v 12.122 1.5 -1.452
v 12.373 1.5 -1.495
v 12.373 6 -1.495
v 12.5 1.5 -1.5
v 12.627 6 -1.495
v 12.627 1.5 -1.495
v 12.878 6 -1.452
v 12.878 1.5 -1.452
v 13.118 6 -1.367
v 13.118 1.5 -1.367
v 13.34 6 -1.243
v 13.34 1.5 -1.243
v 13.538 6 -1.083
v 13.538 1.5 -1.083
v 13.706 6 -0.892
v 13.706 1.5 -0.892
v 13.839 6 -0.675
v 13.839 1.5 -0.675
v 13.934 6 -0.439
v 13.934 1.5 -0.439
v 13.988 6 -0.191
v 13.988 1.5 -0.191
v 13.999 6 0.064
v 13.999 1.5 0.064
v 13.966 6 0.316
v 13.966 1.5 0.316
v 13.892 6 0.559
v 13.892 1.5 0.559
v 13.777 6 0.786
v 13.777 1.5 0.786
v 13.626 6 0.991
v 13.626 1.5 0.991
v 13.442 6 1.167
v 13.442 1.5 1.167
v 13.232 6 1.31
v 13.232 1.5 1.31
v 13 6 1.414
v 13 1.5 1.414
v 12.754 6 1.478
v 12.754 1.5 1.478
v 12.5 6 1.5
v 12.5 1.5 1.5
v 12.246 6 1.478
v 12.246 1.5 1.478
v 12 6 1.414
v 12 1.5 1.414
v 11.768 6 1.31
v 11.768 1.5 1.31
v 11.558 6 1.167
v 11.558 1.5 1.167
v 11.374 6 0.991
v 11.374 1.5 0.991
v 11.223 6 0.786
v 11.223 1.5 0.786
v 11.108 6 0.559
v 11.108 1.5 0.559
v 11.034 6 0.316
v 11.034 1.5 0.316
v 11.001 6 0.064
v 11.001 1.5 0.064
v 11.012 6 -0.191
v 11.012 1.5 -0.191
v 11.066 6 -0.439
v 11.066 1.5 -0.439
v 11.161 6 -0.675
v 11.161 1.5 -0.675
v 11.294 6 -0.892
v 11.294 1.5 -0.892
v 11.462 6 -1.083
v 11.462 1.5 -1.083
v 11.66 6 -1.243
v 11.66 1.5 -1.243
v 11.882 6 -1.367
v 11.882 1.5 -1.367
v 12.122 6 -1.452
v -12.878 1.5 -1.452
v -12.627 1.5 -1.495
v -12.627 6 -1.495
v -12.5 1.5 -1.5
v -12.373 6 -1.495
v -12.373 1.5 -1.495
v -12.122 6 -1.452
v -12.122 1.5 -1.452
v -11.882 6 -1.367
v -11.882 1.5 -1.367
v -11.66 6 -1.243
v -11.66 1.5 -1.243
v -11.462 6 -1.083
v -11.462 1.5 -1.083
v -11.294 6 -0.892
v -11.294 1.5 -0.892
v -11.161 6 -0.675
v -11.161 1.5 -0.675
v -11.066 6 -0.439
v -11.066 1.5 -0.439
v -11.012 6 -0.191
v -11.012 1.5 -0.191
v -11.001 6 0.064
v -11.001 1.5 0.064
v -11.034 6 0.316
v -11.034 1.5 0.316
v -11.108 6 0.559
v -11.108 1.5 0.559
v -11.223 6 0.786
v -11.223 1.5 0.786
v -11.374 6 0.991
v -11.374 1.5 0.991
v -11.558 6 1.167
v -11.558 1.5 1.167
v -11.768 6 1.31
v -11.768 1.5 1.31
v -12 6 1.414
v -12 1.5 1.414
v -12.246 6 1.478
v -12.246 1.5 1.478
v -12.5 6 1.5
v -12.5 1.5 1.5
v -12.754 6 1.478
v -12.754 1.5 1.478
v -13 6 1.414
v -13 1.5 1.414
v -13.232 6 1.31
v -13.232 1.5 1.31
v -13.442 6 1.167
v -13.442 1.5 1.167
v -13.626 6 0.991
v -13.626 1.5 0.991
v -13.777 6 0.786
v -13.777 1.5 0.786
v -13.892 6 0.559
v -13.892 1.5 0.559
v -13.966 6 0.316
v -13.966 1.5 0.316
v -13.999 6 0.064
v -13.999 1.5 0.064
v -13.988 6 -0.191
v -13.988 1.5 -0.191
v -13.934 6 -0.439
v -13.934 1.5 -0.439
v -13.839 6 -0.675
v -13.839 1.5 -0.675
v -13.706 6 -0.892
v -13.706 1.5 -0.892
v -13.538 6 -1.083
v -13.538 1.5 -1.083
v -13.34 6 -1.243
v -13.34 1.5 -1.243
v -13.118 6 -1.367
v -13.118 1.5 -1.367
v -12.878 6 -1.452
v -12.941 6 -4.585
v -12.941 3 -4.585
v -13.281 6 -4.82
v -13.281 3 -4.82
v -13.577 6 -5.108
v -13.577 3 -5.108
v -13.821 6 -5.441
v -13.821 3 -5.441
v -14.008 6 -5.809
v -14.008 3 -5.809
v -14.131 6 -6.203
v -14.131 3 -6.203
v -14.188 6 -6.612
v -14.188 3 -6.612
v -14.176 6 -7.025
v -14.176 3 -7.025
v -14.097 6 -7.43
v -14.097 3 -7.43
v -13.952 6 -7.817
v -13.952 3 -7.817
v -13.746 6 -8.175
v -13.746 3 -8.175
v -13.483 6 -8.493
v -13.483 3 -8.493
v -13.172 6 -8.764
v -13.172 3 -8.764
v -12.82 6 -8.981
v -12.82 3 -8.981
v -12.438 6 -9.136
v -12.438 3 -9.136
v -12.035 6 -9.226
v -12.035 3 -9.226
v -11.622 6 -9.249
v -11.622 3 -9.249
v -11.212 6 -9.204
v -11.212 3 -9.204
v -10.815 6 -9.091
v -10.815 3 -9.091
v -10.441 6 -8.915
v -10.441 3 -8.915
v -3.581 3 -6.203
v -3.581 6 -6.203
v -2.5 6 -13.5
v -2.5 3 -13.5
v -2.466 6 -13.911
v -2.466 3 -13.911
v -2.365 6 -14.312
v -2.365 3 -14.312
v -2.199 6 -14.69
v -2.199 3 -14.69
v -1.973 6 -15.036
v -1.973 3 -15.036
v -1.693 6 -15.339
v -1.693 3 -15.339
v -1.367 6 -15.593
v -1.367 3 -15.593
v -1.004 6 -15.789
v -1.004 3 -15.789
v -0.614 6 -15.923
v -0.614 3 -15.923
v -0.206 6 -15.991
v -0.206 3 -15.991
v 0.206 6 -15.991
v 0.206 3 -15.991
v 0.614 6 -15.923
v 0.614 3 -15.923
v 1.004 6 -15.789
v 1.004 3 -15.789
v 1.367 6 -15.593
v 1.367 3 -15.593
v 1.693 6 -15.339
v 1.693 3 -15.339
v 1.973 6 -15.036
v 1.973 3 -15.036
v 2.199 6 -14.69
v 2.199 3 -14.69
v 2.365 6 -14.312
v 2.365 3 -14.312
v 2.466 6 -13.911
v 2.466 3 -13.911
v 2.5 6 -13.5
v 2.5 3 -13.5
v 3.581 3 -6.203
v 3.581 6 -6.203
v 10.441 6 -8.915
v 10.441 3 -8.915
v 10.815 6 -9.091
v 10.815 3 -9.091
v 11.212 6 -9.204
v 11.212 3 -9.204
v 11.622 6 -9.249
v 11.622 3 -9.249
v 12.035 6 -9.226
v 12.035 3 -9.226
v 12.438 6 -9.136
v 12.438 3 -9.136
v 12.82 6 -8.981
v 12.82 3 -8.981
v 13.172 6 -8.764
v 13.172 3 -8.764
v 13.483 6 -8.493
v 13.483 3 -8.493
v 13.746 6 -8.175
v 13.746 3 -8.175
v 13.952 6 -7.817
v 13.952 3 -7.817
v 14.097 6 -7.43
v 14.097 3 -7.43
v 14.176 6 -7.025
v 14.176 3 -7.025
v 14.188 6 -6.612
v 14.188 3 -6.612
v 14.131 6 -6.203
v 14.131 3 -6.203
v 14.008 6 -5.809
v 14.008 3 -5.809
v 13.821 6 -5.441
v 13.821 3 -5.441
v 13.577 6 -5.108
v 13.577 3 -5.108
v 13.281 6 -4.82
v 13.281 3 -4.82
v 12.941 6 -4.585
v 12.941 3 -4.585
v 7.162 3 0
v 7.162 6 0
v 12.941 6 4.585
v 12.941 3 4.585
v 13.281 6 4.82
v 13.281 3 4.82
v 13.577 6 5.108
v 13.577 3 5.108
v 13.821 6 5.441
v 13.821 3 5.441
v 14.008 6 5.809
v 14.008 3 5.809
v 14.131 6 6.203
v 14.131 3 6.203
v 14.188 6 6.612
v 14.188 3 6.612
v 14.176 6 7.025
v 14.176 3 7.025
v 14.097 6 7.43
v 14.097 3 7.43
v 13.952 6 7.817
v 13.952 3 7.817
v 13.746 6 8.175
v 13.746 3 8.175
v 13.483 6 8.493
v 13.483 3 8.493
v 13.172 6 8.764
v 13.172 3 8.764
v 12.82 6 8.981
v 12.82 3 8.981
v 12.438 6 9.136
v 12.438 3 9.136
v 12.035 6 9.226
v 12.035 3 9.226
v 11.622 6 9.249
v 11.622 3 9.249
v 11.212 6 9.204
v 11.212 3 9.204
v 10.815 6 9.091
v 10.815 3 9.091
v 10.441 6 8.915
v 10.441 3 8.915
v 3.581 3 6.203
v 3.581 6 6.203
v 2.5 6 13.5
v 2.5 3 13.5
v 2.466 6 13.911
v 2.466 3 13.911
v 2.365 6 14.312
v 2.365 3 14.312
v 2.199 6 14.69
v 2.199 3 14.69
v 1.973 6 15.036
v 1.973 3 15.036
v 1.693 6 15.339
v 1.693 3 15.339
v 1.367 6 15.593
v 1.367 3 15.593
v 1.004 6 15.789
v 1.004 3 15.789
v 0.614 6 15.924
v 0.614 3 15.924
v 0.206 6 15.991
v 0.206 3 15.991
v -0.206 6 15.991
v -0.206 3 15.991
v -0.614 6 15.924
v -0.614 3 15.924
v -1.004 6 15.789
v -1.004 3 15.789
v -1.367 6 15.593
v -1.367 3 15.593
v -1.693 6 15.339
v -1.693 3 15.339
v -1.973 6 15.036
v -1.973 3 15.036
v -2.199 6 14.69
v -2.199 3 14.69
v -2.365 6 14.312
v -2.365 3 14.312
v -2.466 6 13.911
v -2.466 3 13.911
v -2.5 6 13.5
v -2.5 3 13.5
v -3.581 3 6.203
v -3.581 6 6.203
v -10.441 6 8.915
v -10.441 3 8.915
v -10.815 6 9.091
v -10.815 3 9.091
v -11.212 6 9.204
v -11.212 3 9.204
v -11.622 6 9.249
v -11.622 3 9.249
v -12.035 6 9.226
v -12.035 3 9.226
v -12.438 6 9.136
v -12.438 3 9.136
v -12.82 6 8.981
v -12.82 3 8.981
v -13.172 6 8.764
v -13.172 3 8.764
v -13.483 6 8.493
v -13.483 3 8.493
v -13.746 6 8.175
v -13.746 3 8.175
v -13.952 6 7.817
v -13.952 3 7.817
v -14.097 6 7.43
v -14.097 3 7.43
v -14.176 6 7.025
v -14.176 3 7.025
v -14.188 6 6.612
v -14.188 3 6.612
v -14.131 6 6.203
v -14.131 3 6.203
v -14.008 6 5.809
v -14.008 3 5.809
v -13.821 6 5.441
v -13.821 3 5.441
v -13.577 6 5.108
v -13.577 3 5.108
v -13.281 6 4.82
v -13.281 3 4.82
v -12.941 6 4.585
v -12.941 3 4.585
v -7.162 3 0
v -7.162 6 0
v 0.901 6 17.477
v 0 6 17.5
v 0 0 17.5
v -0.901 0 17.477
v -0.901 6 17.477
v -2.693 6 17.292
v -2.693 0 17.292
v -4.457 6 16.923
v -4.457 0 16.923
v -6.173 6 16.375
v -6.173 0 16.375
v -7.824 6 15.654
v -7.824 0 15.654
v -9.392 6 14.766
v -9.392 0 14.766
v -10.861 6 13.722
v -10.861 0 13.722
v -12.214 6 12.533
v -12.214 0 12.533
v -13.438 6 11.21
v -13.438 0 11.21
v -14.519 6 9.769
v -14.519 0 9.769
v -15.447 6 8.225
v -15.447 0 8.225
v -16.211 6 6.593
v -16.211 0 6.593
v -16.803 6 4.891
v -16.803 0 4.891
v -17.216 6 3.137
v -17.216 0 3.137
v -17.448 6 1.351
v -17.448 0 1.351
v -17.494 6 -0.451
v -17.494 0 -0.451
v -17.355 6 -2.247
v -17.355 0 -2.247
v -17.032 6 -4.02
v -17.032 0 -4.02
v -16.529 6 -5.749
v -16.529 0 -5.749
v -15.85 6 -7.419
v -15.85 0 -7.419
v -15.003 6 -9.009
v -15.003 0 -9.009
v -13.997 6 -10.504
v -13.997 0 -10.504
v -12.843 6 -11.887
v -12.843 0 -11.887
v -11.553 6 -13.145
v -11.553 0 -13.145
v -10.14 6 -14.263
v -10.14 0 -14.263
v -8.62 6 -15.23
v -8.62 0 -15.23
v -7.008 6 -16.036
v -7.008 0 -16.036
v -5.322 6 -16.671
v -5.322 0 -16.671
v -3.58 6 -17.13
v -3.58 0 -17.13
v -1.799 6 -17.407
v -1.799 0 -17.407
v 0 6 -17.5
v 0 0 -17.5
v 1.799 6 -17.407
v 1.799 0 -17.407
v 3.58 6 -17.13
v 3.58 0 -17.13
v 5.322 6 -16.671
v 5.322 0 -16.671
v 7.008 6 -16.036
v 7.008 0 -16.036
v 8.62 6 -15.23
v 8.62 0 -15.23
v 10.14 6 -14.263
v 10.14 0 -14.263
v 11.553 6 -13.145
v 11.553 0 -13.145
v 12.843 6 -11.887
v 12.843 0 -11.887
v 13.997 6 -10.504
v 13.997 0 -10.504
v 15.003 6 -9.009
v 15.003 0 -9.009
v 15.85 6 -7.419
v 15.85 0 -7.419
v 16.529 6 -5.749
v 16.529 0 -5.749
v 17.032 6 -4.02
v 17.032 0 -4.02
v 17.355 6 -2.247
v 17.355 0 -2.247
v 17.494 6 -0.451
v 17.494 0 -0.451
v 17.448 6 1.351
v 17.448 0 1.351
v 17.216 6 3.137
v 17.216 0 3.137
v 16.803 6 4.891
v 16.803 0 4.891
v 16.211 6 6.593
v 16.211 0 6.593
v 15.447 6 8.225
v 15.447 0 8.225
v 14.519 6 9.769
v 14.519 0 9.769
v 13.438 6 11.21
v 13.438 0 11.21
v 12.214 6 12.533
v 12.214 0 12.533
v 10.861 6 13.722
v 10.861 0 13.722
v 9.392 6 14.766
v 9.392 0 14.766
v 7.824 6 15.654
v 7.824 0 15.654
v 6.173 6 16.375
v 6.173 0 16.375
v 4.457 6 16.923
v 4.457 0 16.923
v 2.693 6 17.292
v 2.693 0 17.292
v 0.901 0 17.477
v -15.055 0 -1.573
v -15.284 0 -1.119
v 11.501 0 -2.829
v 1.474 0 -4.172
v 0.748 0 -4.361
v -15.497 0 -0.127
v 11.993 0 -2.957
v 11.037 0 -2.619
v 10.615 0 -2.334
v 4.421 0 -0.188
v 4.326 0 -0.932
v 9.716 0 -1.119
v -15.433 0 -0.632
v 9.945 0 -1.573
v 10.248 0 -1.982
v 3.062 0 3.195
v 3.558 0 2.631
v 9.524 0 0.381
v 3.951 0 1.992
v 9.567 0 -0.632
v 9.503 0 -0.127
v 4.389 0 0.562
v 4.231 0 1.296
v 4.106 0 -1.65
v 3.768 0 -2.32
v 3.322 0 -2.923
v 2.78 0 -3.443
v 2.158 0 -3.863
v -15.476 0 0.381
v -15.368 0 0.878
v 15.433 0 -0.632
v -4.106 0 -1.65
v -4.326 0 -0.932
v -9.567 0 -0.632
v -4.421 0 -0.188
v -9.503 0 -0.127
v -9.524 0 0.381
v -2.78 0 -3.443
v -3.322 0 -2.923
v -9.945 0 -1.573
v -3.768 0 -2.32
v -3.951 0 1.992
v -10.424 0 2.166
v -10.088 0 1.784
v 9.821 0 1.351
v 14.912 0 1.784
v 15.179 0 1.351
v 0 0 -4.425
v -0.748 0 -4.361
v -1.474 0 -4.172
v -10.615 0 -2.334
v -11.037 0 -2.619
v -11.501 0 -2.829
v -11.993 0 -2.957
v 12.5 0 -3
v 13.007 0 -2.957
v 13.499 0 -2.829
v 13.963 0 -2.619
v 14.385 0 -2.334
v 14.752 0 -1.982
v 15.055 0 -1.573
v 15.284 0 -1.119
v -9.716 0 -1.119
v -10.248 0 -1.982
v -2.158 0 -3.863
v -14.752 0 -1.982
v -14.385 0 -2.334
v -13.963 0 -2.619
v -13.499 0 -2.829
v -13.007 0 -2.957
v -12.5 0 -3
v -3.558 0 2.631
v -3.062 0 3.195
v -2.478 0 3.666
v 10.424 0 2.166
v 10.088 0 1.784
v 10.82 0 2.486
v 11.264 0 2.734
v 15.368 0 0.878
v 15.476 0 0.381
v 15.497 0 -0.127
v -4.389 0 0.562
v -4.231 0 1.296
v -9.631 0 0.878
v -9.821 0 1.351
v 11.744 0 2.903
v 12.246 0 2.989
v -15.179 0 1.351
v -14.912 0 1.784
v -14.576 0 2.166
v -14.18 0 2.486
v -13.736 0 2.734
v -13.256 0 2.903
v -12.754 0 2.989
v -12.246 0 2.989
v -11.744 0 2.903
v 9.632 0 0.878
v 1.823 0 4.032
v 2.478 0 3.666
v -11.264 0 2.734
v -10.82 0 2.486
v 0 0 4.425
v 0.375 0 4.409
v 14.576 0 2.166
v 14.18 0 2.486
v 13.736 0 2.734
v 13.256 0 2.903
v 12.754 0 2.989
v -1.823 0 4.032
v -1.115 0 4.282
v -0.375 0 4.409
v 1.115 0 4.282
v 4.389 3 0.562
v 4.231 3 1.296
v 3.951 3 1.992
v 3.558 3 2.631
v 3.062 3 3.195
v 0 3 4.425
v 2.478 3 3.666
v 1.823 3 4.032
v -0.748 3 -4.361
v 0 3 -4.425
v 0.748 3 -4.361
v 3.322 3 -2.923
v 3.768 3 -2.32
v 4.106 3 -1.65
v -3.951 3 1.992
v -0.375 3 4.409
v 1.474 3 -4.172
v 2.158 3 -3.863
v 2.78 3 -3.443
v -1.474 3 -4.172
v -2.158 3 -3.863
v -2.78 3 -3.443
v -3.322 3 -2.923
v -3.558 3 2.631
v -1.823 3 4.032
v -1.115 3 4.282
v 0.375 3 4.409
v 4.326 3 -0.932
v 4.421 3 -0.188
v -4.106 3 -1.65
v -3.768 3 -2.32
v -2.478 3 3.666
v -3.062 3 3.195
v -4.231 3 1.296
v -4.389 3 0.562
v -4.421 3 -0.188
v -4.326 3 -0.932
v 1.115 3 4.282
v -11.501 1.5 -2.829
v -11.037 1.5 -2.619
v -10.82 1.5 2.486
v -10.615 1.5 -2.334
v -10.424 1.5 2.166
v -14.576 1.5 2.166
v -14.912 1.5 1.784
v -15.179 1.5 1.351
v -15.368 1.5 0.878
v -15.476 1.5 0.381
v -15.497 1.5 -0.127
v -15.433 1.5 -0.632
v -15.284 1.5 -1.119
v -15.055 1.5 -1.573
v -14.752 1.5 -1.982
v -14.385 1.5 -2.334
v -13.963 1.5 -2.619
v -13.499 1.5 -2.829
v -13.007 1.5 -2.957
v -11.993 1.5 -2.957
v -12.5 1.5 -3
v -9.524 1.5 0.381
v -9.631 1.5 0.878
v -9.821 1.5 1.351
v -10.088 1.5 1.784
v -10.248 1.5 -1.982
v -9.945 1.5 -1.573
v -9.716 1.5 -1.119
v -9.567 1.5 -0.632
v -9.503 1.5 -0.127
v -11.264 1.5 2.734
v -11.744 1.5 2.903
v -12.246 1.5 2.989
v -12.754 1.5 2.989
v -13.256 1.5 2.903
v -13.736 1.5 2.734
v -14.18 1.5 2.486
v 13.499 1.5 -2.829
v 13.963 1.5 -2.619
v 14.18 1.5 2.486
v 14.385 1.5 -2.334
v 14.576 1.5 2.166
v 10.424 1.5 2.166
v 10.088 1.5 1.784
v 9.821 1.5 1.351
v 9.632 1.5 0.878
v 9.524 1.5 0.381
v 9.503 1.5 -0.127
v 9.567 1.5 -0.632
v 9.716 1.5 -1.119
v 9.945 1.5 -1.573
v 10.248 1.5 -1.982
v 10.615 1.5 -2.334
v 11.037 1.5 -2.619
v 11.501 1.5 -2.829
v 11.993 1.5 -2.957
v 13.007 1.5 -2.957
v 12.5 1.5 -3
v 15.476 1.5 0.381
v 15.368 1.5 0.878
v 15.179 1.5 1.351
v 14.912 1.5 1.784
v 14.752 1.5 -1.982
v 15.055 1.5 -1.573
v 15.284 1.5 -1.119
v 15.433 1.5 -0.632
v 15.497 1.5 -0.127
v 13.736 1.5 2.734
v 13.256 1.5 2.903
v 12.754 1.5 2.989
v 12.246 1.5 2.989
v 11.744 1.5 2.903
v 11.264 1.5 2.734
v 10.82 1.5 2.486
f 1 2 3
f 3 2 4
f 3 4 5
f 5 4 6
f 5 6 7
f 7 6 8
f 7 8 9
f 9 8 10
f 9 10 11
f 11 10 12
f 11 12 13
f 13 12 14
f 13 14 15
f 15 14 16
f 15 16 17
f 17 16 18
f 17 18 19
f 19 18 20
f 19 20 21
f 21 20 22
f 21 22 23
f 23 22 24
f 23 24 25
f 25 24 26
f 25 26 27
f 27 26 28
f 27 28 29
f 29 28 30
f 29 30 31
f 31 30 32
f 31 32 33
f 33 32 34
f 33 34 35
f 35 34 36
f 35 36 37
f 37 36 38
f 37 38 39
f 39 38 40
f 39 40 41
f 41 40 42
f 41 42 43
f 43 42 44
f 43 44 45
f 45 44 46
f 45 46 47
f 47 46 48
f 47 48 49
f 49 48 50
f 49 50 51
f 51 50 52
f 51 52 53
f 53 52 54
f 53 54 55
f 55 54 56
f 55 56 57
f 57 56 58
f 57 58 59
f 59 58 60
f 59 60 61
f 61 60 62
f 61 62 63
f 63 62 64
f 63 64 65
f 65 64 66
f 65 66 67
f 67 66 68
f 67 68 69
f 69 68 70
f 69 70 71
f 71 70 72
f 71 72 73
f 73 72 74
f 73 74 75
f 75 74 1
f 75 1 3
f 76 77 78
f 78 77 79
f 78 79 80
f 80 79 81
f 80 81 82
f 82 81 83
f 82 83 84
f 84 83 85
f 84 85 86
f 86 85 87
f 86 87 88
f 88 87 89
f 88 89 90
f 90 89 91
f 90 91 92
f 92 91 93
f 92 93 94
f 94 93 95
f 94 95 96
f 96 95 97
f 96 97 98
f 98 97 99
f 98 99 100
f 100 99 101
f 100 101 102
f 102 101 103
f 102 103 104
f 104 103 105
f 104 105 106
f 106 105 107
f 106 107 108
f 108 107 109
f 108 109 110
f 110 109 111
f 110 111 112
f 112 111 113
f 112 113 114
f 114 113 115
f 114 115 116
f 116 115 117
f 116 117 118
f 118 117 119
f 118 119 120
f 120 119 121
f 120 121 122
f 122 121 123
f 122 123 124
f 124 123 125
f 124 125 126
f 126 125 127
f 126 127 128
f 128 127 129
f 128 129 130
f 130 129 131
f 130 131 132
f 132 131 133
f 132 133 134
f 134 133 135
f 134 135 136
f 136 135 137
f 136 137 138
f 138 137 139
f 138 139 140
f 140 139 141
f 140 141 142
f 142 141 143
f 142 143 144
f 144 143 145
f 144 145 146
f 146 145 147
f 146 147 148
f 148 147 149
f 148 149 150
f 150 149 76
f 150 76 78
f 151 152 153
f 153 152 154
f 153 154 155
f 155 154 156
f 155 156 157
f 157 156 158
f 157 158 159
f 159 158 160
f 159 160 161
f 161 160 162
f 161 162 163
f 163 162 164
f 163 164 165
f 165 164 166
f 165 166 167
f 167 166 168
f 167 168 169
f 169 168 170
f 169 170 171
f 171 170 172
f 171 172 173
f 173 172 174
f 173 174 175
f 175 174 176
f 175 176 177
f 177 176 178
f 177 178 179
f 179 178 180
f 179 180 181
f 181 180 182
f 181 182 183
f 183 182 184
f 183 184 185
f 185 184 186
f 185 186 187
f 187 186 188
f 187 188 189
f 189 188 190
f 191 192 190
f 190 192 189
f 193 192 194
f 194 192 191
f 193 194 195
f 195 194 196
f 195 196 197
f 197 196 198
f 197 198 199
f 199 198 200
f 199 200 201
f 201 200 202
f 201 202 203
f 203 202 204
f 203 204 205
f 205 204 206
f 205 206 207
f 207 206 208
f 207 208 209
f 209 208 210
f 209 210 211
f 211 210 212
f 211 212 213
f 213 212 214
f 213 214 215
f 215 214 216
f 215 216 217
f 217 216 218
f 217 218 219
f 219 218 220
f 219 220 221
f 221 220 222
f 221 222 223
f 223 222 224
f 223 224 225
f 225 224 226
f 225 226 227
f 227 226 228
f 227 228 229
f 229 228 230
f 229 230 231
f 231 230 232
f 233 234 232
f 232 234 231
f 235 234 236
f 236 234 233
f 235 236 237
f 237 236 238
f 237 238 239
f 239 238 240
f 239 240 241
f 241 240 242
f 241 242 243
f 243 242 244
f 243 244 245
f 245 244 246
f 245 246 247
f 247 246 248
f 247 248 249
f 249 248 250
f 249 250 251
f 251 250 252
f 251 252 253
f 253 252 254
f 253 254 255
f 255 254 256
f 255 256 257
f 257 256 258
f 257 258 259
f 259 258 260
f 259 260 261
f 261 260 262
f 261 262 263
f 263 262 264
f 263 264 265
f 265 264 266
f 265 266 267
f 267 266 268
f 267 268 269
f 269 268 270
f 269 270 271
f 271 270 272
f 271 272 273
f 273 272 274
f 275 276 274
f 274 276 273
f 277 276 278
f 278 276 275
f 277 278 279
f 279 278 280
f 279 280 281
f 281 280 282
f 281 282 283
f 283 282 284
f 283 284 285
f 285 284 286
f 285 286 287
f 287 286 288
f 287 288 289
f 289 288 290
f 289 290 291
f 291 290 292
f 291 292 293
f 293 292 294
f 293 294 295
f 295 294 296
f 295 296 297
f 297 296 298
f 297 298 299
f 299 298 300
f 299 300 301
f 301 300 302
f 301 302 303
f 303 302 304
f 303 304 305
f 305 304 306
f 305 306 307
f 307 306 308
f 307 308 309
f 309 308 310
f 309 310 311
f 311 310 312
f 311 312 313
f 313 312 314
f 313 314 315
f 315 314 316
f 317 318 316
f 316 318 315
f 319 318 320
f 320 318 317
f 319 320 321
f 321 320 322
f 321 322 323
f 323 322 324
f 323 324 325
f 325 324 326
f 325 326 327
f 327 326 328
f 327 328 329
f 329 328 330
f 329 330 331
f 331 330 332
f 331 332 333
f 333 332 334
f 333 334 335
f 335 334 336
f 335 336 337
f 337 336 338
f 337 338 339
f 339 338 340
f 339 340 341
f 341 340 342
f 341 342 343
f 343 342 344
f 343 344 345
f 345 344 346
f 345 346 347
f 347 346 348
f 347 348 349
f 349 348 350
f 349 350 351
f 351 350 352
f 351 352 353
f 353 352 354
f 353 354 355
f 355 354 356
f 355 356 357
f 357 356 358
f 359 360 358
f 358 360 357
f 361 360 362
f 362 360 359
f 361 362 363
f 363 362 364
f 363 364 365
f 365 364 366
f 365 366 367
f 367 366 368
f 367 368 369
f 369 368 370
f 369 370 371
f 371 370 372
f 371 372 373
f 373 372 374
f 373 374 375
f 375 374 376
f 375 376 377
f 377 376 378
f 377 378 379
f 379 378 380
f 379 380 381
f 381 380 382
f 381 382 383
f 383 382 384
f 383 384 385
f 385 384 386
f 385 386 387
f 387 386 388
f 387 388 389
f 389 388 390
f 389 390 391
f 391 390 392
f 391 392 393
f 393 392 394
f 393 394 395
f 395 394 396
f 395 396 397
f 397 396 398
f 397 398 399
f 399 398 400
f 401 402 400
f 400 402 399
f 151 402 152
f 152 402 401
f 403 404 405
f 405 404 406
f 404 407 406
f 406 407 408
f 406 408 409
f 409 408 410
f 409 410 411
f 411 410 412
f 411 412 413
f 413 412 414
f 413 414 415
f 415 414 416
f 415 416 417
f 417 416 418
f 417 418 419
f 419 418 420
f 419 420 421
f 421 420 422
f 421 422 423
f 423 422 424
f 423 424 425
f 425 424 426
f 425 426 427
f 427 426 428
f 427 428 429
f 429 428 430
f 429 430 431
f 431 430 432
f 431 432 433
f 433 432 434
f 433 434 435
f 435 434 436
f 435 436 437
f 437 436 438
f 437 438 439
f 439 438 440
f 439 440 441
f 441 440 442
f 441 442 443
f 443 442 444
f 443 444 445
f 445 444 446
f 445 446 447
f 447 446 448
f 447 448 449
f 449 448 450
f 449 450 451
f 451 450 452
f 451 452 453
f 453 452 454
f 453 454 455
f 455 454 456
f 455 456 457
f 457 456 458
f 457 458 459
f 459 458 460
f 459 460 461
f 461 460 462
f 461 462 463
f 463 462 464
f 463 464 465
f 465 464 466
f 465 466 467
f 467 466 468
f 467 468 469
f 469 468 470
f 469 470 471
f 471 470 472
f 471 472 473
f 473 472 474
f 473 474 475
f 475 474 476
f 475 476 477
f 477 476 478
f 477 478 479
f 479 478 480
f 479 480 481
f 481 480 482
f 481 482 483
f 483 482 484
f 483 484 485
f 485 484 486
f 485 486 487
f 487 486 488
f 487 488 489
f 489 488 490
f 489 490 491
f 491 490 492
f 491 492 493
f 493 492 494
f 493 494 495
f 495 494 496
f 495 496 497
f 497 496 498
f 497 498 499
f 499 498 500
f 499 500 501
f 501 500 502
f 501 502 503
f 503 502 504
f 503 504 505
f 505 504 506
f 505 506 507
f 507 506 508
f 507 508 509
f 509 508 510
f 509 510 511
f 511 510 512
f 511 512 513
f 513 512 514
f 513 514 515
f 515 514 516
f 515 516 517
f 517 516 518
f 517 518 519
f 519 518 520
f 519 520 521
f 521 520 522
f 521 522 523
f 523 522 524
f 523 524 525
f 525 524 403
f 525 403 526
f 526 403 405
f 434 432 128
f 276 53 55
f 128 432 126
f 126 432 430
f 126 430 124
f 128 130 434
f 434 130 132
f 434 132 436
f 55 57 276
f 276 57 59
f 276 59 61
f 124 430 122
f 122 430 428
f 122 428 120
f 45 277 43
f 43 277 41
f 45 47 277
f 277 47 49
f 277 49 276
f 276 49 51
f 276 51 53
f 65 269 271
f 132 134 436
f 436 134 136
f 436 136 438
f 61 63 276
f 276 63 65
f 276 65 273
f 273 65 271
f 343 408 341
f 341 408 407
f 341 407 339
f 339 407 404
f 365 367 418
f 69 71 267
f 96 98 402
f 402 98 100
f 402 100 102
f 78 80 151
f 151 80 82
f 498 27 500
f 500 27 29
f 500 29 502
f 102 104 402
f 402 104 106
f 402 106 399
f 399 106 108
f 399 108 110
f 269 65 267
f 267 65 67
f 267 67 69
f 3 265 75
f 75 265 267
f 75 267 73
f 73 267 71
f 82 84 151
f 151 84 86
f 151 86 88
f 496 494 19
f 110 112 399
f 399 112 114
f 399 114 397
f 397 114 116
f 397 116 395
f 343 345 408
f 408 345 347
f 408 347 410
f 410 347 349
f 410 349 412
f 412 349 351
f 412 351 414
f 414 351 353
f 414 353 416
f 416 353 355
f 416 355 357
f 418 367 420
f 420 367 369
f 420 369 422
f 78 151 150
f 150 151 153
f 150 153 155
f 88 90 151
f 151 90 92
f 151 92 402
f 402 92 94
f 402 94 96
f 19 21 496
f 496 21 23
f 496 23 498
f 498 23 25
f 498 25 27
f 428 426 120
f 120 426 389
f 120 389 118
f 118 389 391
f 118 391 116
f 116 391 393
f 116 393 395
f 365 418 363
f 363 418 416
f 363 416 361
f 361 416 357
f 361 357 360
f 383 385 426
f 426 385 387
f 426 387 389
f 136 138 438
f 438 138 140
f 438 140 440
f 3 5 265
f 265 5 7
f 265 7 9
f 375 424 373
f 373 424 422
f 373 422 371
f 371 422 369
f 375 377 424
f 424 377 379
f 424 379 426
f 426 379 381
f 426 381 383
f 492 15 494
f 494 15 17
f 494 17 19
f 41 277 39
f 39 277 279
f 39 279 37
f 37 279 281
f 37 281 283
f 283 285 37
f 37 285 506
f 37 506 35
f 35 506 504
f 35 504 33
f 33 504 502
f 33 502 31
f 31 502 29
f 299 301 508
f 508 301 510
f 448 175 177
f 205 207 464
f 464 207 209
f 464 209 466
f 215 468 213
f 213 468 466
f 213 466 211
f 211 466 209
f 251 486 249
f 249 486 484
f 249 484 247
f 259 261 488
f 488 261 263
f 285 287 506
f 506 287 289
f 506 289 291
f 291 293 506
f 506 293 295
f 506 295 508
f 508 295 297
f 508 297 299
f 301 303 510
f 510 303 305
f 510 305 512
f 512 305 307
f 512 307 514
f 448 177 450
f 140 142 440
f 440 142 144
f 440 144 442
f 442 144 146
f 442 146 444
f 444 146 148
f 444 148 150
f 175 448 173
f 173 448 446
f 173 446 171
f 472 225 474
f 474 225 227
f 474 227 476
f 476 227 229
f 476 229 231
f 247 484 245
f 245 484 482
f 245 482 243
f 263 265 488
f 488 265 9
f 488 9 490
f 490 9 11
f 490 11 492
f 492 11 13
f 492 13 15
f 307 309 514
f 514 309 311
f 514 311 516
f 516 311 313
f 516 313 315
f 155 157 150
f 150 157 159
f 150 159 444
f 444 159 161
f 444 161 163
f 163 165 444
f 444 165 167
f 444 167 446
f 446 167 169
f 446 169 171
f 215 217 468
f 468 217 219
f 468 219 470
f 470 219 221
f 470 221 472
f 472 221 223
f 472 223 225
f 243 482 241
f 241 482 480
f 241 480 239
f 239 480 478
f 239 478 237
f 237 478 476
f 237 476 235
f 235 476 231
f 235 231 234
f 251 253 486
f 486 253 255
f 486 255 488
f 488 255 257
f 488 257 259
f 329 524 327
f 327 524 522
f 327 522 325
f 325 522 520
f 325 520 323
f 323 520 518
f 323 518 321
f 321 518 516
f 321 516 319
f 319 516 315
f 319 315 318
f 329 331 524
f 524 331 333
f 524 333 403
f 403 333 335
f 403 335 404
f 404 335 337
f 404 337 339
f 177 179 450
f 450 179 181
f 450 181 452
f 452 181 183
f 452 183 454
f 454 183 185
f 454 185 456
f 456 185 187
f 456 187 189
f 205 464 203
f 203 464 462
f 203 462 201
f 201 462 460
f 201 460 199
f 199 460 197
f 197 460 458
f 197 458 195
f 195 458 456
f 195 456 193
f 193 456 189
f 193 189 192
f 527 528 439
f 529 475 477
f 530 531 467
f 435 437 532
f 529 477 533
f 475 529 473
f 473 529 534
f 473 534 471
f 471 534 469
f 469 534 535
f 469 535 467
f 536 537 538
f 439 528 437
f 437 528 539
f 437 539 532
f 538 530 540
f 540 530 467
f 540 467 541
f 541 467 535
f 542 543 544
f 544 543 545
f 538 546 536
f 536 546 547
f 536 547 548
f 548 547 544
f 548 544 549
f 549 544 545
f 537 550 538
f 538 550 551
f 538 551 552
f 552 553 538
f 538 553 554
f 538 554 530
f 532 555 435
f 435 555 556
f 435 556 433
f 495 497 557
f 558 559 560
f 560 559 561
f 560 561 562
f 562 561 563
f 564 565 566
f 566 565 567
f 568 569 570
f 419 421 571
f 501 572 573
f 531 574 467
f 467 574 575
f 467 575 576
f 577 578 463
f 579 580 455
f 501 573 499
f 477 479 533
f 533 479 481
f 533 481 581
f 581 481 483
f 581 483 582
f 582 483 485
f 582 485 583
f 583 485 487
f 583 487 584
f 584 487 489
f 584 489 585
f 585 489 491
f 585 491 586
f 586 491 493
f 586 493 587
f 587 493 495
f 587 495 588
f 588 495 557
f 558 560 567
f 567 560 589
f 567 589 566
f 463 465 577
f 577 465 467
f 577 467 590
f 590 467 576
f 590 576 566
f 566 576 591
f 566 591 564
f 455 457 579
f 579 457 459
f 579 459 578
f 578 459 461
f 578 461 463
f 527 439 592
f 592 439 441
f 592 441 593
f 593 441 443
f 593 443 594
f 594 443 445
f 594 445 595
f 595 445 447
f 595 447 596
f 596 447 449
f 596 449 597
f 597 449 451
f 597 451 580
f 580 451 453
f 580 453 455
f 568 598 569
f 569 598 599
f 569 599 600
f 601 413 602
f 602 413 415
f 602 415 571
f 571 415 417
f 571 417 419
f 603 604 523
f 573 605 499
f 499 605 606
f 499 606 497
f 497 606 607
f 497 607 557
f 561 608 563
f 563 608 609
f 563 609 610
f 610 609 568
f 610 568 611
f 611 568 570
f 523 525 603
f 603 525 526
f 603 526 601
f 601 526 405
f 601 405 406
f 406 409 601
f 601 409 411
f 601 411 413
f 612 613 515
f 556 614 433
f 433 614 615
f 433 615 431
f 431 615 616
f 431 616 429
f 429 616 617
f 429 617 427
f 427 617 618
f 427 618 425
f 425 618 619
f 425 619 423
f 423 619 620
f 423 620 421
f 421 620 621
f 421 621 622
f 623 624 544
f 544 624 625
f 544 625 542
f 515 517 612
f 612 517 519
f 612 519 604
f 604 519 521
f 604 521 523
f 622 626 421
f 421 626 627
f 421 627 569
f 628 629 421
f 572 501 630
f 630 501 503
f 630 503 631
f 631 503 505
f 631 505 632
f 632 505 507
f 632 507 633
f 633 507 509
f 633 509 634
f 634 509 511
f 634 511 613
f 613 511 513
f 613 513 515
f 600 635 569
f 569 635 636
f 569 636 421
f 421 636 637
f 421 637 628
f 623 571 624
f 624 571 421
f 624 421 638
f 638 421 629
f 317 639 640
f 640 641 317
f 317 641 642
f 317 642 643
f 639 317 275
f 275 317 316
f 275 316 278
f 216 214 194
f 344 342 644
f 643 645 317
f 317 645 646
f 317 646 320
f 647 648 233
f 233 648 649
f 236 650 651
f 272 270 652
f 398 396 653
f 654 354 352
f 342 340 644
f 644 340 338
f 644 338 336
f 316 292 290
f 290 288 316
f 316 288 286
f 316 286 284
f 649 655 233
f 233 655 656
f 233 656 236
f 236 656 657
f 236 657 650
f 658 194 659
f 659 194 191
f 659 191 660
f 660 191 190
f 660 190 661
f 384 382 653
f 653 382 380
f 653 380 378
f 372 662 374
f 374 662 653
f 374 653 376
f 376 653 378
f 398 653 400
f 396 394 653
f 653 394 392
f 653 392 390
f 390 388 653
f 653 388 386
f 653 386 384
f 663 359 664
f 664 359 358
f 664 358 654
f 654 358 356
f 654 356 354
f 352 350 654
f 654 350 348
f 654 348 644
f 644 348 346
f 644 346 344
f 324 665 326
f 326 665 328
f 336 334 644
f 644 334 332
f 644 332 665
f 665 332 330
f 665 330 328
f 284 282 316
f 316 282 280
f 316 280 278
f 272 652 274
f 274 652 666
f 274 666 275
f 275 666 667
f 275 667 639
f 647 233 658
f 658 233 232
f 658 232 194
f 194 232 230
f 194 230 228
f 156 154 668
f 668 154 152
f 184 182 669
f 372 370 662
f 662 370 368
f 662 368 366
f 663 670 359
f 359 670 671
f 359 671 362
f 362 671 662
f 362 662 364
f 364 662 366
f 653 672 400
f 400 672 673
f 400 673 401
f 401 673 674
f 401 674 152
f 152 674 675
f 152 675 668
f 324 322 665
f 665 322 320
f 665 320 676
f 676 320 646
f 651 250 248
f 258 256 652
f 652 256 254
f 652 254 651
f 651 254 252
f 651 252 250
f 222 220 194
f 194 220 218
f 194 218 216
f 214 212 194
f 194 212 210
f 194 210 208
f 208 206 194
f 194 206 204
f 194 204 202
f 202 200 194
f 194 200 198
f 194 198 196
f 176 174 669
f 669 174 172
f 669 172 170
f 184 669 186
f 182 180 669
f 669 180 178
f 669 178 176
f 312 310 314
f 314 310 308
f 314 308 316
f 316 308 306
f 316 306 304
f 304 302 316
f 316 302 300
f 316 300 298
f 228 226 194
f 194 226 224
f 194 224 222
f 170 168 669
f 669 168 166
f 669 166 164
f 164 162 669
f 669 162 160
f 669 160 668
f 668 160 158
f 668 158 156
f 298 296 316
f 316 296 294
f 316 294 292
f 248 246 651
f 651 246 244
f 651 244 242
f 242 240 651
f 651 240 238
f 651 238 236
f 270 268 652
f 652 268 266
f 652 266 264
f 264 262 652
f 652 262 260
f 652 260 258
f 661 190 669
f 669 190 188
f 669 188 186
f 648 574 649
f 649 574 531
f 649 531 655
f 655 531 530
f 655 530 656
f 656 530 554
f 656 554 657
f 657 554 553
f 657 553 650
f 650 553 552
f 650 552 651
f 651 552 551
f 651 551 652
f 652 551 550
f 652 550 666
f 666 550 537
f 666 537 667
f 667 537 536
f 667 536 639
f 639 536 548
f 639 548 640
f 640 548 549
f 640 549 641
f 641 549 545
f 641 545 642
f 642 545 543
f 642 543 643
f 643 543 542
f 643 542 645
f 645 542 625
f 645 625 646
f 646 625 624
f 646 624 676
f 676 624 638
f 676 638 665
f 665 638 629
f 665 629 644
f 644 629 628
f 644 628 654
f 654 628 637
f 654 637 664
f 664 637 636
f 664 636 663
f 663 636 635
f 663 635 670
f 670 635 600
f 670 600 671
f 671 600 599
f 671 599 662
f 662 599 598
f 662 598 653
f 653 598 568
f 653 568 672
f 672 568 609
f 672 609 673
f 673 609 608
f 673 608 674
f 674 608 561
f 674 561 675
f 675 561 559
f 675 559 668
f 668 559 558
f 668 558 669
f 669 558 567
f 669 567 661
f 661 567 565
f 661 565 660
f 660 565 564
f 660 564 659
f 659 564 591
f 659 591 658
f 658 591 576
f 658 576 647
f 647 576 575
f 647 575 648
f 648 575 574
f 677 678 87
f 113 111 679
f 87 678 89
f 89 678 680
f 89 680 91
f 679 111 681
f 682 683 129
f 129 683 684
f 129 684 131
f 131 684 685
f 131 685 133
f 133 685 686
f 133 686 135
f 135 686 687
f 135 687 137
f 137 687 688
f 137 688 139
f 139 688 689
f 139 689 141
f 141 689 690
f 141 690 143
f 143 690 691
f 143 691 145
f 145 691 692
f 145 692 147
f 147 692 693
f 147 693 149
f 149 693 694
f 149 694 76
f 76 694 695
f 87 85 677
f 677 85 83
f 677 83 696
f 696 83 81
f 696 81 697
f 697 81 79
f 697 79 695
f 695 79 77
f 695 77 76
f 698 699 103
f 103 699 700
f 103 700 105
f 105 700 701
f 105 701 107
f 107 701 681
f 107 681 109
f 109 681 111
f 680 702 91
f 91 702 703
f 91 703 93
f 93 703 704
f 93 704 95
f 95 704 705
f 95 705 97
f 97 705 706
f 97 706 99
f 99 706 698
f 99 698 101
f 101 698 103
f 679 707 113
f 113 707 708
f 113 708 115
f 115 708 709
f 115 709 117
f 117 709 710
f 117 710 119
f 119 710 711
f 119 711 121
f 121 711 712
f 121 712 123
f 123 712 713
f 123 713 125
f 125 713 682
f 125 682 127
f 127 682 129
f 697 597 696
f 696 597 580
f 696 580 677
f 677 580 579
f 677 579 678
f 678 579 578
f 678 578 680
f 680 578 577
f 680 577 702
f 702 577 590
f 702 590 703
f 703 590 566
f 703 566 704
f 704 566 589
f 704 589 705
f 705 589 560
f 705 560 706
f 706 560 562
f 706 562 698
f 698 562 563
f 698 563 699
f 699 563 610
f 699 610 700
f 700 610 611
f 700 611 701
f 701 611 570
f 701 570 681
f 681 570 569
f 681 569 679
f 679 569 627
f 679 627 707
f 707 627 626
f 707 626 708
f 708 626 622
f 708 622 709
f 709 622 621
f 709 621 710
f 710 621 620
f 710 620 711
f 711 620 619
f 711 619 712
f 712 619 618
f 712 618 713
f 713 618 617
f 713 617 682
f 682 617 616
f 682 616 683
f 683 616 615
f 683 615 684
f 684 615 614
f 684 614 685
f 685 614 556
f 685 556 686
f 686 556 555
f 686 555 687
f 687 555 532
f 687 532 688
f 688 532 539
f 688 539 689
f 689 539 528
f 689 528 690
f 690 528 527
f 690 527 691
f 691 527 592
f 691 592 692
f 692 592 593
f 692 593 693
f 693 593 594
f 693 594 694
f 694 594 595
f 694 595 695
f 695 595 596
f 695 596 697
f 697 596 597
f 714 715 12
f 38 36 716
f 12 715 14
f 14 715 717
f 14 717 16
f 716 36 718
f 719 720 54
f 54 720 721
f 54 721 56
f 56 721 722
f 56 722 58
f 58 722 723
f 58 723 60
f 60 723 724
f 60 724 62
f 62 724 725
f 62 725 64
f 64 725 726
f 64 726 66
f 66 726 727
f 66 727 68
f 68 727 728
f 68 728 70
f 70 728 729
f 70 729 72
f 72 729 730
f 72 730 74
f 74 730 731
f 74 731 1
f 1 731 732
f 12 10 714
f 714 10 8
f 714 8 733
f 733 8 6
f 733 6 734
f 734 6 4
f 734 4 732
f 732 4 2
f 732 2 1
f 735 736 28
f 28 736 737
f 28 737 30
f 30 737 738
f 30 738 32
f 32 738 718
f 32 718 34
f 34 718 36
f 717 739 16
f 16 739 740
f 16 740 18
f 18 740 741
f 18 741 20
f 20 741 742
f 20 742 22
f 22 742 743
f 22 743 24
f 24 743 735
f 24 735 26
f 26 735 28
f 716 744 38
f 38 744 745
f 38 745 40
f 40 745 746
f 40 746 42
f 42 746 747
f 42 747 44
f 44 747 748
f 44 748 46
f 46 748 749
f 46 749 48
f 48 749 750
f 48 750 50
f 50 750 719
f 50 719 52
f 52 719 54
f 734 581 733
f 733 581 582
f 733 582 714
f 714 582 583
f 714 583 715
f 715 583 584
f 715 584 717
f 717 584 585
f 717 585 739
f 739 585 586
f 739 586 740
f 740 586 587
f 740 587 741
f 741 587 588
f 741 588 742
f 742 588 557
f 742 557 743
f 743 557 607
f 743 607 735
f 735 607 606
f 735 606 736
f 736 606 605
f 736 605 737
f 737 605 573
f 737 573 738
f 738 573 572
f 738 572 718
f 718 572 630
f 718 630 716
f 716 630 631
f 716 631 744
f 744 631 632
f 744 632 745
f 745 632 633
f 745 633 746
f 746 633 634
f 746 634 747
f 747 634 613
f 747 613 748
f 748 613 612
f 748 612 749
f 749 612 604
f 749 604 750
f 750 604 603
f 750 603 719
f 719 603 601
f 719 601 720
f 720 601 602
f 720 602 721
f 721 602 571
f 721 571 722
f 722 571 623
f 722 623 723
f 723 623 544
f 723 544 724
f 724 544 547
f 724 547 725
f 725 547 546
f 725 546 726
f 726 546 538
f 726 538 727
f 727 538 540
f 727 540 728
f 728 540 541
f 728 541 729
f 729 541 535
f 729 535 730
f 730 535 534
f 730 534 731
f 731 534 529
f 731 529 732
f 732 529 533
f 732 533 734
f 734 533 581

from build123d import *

# Parameters (mm, degrees)
SKETCH1_R           = 17.5
BOSS_EXTRUDE3_DEPTH = 6
SKETCH1_11_R        = 4.425
BOSS_EXTRUDE5_DEPTH = 3
SKETCH2_R           = 1.5
CUT_EXTRUDE1_DEPTH  = 10
SKETCH3_R           = 3
CUT_EXTRUDE2_DEPTH  = 1.5


with BuildPart() as part:
    # Sketch1 → Boss-Extrude3 (new body)
    with BuildSketch(Plane(origin=(0, 0, 0), x_dir=(1, 0, 0), z_dir=(0, 1, 0))):
        Circle(SKETCH1_R)
        with BuildLine():
            ThreePointArc((-2.5, 13.5), (-1.767766953, 15.267766953), (0, 16))
            ThreePointArc((0, 16), (1.767766953, 15.267766953), (2.5, 13.5))
            Line((2.5, 13.5), (3.581091494, 6.202632414))
            Line((3.581091494, 6.202632414), (10.441342951, 8.915063509))
            ThreePointArc((10.441342951, 8.915063509), (12.338390564, 9.164814566), (13.856406461, 8))
            ThreePointArc((13.856406461, 8), (14.106157517, 7.397047613), (14.191342951, 6.75))
            ThreePointArc((14.191342951, 6.75), (13.856406461, 5.5), (12.941342951, 4.584936491))
            Line((12.941342951, 4.584936491), (7.162182988, 0))
            Line((7.162182988, 0), (12.941342951, -4.584936491))
            ThreePointArc((12.941342951, -4.584936491), (13.856406461, -5.5), (14.191342951, -6.75))
            ThreePointArc((14.191342951, -6.75), (14.106157517, -7.397047613), (13.856406461, -8))
            ThreePointArc((13.856406461, -8), (12.338390564, -9.164814566), (10.441342951, -8.915063509))
            Line((10.441342951, -8.915063509), (3.581091494, -6.202632414))
            Line((3.581091494, -6.202632414), (2.5, -13.5))
            ThreePointArc((2.5, -13.5), (1.767766953, -15.267766953), (0, -16))
            ThreePointArc((0, -16), (-1.767766953, -15.267766953), (-2.5, -13.5))
            Line((-2.5, -13.5), (-3.581091494, -6.202632414))
            Line((-3.581091494, -6.202632414), (-10.441342951, -8.915063509))
            ThreePointArc((-10.441342951, -8.915063509), (-12.338390564, -9.164814566), (-13.856406461, -8))
            ThreePointArc((-13.856406461, -8), (-14.106157517, -6.102952387), (-12.941342951, -4.584936491))
            Line((-12.941342951, -4.584936491), (-7.162182988, 0))
            Line((-7.162182988, 0), (-12.941342951, 4.584936491))
            ThreePointArc((-12.941342951, 4.584936491), (-14.106157517, 6.102952387), (-13.856406461, 8))
            ThreePointArc((-13.856406461, 8), (-12.338390564, 9.164814566), (-10.441342951, 8.915063509))
            Line((-10.441342951, 8.915063509), (-3.581091494, 6.202632414))
            Line((-3.581091494, 6.202632414), (-2.5, 13.5))
        make_face(mode=Mode.SUBTRACT)
    extrude(amount=BOSS_EXTRUDE3_DEPTH)

    # Sketch1<11> → Boss-Extrude5 (add)
    with BuildSketch(Plane(origin=(0, 0, 0), x_dir=(1, 0, 0), z_dir=(0, 1, 0))):
        with BuildLine():
            Line((-2.5, 13.5), (-3.581091494, 6.202632414))
            Line((-3.581091494, 6.202632414), (-10.441342951, 8.915063509))
            ThreePointArc((-10.441342951, 8.915063509), (-13.856406461, 8), (-12.941342951, 4.584936491))
            Line((-12.941342951, 4.584936491), (-7.162182988, 0))
            Line((-7.162182988, 0), (-12.941342951, -4.584936491))
            ThreePointArc((-12.941342951, -4.584936491), (-13.856406461, -8), (-10.441342951, -8.915063509))
            Line((-10.441342951, -8.915063509), (-3.581091494, -6.202632414))
            Line((-3.581091494, -6.202632414), (-2.5, -13.5))
            ThreePointArc((-2.5, -13.5), (0, -16), (2.5, -13.5))
            Line((2.5, -13.5), (3.581091494, -6.202632414))
            Line((3.581091494, -6.202632414), (10.441342951, -8.915063509))
            ThreePointArc((10.441342951, -8.915063509), (13.856406461, -8), (12.941342951, -4.584936491))
            Line((12.941342951, -4.584936491), (7.162182988, 0))
            Line((7.162182988, 0), (12.941342951, 4.584936491))
            ThreePointArc((12.941342951, 4.584936491), (13.856406461, 8), (10.441342951, 8.915063509))
            Line((10.441342951, 8.915063509), (3.581091494, 6.202632414))
            Line((3.581091494, 6.202632414), (2.5, 13.5))
            ThreePointArc((2.5, 13.5), (0, 16), (-2.5, 13.5))
        make_face()
        Circle(SKETCH1_11_R, mode=Mode.SUBTRACT)
    extrude(amount=BOSS_EXTRUDE5_DEPTH)

    # Sketch2 → Cut-Extrude1 (cut)
    with BuildSketch(Plane(origin=(0, 6, 0), x_dir=(1, 0, 0), z_dir=(0, 1, 0))):
        with Locations((-12.5, 0)):
            Circle(SKETCH2_R)
        with Locations((12.5, 0)):
            Circle(SKETCH2_R)
    extrude(amount=-CUT_EXTRUDE1_DEPTH, mode=Mode.SUBTRACT)

    # Sketch3 → Cut-Extrude2 (cut)
    with BuildSketch(Plane.XZ):
        with Locations((-12.5, 0)):
            Circle(SKETCH3_R)
        with Locations((12.5, 0)):
            Circle(SKETCH3_R)
    extrude(amount=-CUT_EXTRUDE2_DEPTH, mode=Mode.SUBTRACT)


solid = part.part
